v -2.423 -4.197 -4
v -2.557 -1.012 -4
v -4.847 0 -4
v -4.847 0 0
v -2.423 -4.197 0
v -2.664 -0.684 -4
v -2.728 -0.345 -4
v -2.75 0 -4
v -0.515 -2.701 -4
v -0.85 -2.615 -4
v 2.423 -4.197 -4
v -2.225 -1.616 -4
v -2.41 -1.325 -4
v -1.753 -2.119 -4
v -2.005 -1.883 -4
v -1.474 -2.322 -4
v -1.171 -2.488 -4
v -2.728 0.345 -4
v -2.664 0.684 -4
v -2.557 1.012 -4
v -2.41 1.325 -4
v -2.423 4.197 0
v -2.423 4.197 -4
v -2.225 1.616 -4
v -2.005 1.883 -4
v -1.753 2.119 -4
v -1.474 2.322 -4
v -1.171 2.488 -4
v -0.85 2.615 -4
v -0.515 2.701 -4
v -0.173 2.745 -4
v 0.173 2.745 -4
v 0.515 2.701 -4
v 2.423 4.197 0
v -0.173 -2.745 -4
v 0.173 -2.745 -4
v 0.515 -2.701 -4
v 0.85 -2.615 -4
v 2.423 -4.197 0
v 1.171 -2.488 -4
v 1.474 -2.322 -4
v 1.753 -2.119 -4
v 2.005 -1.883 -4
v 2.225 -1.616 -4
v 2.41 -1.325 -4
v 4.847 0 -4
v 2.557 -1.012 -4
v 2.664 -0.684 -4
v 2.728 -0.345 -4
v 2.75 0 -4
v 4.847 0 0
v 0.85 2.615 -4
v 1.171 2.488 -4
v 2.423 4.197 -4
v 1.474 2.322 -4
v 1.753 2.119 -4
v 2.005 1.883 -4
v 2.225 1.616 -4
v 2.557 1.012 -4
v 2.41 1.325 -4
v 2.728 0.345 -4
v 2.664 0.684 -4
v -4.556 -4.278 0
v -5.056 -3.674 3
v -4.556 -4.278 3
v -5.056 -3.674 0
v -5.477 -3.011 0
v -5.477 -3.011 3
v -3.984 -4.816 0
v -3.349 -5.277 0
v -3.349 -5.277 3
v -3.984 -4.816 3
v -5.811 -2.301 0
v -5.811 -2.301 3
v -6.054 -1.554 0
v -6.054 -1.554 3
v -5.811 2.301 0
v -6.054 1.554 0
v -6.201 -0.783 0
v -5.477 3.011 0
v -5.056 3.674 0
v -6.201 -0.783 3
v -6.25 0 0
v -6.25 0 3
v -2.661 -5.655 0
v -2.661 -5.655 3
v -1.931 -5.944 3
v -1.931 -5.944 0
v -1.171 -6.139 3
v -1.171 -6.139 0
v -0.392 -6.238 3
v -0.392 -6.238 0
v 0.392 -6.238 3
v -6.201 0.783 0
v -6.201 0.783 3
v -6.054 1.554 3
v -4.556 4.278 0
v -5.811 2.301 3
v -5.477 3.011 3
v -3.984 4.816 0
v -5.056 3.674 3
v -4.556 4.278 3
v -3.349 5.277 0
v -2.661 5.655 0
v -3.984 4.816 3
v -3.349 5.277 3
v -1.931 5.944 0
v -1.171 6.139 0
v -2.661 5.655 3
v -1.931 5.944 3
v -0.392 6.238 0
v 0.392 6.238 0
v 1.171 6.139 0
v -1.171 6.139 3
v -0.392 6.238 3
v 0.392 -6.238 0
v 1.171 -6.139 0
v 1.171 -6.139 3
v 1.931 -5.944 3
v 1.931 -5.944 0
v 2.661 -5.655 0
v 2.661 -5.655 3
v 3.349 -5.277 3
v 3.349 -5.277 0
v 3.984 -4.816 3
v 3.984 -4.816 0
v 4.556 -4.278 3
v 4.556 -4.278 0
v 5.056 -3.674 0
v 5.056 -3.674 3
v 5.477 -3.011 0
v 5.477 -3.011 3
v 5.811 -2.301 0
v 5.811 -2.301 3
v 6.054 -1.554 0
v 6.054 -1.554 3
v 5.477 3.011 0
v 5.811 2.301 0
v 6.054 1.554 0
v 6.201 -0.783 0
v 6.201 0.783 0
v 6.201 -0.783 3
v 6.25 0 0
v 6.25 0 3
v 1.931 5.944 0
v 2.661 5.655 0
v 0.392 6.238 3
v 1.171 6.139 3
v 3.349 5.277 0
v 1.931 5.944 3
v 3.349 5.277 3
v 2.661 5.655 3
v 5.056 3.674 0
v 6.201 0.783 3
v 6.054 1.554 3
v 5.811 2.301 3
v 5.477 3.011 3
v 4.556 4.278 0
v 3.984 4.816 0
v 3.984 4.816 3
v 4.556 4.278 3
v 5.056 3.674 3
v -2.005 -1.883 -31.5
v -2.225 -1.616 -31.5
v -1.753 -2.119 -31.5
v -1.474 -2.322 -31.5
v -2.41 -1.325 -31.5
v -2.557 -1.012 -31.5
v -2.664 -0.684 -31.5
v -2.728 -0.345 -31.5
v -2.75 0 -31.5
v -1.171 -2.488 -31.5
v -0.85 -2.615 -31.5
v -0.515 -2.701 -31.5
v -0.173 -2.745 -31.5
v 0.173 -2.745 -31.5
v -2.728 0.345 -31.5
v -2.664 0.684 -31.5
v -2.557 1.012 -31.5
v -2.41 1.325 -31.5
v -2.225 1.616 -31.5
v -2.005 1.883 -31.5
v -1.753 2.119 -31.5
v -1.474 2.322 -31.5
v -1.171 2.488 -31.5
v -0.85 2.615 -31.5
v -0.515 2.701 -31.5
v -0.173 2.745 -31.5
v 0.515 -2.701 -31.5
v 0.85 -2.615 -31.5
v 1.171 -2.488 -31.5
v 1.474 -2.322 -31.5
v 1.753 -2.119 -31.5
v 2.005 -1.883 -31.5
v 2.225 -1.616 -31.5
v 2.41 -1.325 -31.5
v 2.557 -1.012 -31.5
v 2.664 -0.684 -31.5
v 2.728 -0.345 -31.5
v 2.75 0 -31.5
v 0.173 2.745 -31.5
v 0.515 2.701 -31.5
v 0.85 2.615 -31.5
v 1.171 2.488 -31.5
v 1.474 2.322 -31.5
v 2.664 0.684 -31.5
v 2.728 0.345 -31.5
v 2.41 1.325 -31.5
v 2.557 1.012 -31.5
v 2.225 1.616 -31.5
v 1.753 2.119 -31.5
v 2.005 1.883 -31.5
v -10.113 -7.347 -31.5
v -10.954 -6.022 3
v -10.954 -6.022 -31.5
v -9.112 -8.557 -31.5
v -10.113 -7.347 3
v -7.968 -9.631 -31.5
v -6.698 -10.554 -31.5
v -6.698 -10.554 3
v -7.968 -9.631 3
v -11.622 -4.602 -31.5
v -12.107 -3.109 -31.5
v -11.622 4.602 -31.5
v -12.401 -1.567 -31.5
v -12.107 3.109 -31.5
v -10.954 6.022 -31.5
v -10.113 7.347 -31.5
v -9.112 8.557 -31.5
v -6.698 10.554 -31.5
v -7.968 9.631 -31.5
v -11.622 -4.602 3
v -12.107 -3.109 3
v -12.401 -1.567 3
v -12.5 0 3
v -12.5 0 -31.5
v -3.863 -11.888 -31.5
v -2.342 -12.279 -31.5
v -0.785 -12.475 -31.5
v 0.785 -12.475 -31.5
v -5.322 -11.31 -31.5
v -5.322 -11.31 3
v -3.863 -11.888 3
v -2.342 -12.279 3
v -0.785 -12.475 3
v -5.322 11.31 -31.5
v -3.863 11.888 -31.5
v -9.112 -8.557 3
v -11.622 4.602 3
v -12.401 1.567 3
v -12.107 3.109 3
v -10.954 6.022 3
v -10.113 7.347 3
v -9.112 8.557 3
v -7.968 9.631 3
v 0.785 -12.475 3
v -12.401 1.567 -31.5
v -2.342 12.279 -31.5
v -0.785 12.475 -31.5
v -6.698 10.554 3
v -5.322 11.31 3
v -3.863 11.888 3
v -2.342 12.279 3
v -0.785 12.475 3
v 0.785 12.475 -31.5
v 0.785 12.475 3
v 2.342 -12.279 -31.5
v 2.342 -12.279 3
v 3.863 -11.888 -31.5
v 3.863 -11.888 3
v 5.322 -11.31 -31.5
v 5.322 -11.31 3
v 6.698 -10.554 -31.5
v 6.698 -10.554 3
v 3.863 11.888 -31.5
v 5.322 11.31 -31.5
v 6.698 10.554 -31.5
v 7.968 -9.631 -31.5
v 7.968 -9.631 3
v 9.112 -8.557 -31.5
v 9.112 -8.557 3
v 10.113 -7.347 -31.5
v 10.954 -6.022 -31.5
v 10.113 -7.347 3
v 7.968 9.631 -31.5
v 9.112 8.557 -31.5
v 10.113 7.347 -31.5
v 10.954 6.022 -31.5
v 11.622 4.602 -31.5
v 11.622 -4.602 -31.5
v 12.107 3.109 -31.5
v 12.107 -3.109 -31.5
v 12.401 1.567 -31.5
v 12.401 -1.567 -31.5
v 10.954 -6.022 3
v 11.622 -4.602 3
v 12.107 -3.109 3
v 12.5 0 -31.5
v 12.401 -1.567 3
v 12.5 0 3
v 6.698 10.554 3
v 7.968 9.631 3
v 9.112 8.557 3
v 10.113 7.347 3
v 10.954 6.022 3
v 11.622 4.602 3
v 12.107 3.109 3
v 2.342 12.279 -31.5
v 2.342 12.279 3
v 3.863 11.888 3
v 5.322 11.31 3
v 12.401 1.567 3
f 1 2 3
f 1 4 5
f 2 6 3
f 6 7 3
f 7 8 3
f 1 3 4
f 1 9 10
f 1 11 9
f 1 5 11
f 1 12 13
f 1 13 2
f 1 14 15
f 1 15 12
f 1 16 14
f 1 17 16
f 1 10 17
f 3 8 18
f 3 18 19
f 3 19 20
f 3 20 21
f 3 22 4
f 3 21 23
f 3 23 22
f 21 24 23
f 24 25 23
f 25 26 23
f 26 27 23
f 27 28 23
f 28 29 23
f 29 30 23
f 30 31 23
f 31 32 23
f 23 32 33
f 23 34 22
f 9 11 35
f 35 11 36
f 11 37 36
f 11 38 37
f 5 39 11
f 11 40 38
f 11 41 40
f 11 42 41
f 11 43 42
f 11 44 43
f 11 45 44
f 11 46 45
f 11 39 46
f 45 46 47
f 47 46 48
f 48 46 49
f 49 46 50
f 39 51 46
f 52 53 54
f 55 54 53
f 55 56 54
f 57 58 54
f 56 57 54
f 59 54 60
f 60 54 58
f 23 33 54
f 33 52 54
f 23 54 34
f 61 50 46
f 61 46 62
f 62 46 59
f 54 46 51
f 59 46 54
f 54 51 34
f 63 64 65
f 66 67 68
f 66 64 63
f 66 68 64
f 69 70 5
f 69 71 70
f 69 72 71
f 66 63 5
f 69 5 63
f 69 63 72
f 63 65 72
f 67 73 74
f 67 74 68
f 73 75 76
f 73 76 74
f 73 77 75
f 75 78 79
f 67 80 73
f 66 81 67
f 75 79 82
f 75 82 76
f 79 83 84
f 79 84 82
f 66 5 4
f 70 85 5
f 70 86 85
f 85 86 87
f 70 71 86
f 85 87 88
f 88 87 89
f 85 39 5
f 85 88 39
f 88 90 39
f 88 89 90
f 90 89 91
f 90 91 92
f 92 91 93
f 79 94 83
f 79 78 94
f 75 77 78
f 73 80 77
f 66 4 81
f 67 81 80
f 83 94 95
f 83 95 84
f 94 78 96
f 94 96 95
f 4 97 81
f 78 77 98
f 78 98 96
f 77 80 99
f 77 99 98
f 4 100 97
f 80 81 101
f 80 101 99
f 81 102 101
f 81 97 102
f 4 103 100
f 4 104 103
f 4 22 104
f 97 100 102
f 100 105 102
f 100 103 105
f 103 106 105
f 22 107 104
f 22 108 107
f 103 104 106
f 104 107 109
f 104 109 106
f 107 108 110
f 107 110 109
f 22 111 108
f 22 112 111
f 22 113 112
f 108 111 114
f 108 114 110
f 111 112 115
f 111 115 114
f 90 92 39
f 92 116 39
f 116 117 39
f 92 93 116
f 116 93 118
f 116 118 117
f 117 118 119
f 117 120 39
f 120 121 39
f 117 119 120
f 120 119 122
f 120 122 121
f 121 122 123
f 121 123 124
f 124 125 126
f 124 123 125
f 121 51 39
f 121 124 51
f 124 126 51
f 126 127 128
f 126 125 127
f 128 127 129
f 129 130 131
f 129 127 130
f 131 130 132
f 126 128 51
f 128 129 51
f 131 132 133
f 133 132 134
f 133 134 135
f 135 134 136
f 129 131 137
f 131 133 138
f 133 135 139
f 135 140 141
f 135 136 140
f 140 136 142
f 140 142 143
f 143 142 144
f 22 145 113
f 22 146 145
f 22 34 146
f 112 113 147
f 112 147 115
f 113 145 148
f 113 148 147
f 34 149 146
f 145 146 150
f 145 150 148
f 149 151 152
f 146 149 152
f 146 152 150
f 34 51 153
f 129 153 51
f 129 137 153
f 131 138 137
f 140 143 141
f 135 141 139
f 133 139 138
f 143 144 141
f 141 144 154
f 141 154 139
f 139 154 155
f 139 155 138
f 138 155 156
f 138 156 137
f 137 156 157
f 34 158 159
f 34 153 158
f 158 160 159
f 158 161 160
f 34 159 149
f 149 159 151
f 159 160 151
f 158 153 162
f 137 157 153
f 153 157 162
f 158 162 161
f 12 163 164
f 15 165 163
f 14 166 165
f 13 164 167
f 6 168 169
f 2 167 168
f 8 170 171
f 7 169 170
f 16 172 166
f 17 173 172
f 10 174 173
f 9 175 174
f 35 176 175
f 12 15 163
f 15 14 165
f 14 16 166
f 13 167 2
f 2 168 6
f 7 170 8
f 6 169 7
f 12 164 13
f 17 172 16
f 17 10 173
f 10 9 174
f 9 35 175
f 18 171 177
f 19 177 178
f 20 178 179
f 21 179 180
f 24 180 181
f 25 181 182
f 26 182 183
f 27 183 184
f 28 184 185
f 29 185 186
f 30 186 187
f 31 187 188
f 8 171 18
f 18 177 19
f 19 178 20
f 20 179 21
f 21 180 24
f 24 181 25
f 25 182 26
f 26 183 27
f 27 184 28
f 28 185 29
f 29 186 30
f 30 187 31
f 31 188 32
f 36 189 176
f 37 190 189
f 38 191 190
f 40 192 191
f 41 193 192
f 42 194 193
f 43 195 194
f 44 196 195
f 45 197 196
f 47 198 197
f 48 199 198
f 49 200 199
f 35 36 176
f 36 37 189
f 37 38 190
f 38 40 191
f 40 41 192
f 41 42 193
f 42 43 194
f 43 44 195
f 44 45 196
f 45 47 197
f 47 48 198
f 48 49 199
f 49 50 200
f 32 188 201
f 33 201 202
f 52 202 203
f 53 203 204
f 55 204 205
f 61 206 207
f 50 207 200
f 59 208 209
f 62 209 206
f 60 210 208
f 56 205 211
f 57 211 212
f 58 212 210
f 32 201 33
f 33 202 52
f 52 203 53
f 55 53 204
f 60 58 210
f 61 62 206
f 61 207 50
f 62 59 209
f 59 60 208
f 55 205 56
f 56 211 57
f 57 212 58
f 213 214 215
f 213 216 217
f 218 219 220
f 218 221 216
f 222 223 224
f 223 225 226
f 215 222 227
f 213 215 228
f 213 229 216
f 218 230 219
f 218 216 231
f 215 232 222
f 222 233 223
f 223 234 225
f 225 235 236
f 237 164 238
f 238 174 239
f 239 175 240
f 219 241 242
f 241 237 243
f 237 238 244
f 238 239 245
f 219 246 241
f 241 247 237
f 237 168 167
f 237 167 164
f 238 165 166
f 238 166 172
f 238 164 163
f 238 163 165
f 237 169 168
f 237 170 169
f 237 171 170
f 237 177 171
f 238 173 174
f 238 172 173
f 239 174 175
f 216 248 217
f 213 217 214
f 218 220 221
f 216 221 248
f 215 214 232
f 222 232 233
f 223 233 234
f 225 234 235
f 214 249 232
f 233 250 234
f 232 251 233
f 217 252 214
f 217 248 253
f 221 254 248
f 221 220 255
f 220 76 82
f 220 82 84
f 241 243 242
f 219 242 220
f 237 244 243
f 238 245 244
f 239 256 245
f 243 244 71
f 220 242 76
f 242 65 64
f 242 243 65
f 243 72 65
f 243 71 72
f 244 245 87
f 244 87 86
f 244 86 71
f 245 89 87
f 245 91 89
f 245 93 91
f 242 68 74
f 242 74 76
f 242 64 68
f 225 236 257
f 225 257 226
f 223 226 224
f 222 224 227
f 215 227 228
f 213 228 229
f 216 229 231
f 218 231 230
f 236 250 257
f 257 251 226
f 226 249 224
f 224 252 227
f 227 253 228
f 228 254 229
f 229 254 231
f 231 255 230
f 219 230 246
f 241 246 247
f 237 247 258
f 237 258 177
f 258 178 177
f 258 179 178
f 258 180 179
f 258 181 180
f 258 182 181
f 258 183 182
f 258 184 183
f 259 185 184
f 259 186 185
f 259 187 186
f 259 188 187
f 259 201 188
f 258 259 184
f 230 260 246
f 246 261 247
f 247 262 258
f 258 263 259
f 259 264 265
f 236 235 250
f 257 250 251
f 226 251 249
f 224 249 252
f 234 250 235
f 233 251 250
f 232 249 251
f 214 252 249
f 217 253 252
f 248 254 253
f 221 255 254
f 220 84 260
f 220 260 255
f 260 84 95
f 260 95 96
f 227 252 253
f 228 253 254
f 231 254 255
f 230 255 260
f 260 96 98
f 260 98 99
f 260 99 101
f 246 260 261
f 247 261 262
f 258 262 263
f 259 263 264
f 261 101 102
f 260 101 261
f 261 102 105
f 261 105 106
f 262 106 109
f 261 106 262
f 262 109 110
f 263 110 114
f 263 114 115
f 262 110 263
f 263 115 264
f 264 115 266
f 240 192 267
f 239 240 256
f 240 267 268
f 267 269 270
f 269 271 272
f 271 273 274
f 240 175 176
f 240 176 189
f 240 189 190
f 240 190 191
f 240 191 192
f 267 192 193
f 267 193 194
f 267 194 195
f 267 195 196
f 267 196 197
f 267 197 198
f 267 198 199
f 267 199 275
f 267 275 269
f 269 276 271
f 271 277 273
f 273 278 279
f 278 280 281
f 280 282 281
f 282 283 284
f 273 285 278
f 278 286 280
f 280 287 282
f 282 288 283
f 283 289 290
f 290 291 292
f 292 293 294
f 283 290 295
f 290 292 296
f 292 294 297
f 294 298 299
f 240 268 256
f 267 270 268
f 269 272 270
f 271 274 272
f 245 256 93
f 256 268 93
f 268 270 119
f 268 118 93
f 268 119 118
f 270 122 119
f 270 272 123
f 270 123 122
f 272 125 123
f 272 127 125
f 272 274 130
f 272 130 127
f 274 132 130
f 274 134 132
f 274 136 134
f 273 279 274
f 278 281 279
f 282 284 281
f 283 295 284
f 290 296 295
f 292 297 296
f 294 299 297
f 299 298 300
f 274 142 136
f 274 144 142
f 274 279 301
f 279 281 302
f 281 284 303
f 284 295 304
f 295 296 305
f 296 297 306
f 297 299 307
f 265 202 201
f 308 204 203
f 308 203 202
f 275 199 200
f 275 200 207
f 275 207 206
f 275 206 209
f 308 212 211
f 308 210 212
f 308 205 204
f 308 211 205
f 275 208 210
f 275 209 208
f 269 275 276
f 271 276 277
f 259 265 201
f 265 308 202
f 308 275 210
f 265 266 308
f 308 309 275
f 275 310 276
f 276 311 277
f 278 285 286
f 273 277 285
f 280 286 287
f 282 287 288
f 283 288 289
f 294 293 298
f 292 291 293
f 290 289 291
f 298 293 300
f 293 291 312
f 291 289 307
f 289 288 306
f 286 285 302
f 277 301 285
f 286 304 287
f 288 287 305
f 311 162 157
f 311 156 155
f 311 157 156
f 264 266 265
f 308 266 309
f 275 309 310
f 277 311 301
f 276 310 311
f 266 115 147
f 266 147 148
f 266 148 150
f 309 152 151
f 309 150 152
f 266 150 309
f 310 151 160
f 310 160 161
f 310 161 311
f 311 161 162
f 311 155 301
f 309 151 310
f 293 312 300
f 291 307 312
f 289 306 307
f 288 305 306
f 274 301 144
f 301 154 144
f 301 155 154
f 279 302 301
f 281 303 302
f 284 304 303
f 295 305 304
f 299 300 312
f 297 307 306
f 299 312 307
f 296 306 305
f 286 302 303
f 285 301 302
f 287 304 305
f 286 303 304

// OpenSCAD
$fn = 50;


difference() {
	union() {
		translate(v = [0, 0, -31.5000000000]) {
			cylinder(h = 34.5000000000, r = 12.5000000000);
		}
	}
	union() {
		translate(v = [0, 0, 0]) {
			rotate(a = [0, 0, 0]) {
				difference() {
					union() {
						translate(v = [0, 0, -4]) {
							linear_extrude(height = 4) {
								polygon(points = [[4.8468000000, 0.0000000000], [2.4234000000, 4.1974519271], [-2.4234000000, 4.1974519271], [-4.8468000000, 0.0000000000], [-2.4234000000, -4.1974519271], [2.4234000000, -4.1974519271]]);
							}
						}
					}
					union();
				}
			}
		}
		#cylinder(h = 3, r = 6.2500000000);
		#translate(v = [0, 0, -100.0000000000]) {
			cylinder(h = 200, r = 2.7500000000);
		}
	}
}
